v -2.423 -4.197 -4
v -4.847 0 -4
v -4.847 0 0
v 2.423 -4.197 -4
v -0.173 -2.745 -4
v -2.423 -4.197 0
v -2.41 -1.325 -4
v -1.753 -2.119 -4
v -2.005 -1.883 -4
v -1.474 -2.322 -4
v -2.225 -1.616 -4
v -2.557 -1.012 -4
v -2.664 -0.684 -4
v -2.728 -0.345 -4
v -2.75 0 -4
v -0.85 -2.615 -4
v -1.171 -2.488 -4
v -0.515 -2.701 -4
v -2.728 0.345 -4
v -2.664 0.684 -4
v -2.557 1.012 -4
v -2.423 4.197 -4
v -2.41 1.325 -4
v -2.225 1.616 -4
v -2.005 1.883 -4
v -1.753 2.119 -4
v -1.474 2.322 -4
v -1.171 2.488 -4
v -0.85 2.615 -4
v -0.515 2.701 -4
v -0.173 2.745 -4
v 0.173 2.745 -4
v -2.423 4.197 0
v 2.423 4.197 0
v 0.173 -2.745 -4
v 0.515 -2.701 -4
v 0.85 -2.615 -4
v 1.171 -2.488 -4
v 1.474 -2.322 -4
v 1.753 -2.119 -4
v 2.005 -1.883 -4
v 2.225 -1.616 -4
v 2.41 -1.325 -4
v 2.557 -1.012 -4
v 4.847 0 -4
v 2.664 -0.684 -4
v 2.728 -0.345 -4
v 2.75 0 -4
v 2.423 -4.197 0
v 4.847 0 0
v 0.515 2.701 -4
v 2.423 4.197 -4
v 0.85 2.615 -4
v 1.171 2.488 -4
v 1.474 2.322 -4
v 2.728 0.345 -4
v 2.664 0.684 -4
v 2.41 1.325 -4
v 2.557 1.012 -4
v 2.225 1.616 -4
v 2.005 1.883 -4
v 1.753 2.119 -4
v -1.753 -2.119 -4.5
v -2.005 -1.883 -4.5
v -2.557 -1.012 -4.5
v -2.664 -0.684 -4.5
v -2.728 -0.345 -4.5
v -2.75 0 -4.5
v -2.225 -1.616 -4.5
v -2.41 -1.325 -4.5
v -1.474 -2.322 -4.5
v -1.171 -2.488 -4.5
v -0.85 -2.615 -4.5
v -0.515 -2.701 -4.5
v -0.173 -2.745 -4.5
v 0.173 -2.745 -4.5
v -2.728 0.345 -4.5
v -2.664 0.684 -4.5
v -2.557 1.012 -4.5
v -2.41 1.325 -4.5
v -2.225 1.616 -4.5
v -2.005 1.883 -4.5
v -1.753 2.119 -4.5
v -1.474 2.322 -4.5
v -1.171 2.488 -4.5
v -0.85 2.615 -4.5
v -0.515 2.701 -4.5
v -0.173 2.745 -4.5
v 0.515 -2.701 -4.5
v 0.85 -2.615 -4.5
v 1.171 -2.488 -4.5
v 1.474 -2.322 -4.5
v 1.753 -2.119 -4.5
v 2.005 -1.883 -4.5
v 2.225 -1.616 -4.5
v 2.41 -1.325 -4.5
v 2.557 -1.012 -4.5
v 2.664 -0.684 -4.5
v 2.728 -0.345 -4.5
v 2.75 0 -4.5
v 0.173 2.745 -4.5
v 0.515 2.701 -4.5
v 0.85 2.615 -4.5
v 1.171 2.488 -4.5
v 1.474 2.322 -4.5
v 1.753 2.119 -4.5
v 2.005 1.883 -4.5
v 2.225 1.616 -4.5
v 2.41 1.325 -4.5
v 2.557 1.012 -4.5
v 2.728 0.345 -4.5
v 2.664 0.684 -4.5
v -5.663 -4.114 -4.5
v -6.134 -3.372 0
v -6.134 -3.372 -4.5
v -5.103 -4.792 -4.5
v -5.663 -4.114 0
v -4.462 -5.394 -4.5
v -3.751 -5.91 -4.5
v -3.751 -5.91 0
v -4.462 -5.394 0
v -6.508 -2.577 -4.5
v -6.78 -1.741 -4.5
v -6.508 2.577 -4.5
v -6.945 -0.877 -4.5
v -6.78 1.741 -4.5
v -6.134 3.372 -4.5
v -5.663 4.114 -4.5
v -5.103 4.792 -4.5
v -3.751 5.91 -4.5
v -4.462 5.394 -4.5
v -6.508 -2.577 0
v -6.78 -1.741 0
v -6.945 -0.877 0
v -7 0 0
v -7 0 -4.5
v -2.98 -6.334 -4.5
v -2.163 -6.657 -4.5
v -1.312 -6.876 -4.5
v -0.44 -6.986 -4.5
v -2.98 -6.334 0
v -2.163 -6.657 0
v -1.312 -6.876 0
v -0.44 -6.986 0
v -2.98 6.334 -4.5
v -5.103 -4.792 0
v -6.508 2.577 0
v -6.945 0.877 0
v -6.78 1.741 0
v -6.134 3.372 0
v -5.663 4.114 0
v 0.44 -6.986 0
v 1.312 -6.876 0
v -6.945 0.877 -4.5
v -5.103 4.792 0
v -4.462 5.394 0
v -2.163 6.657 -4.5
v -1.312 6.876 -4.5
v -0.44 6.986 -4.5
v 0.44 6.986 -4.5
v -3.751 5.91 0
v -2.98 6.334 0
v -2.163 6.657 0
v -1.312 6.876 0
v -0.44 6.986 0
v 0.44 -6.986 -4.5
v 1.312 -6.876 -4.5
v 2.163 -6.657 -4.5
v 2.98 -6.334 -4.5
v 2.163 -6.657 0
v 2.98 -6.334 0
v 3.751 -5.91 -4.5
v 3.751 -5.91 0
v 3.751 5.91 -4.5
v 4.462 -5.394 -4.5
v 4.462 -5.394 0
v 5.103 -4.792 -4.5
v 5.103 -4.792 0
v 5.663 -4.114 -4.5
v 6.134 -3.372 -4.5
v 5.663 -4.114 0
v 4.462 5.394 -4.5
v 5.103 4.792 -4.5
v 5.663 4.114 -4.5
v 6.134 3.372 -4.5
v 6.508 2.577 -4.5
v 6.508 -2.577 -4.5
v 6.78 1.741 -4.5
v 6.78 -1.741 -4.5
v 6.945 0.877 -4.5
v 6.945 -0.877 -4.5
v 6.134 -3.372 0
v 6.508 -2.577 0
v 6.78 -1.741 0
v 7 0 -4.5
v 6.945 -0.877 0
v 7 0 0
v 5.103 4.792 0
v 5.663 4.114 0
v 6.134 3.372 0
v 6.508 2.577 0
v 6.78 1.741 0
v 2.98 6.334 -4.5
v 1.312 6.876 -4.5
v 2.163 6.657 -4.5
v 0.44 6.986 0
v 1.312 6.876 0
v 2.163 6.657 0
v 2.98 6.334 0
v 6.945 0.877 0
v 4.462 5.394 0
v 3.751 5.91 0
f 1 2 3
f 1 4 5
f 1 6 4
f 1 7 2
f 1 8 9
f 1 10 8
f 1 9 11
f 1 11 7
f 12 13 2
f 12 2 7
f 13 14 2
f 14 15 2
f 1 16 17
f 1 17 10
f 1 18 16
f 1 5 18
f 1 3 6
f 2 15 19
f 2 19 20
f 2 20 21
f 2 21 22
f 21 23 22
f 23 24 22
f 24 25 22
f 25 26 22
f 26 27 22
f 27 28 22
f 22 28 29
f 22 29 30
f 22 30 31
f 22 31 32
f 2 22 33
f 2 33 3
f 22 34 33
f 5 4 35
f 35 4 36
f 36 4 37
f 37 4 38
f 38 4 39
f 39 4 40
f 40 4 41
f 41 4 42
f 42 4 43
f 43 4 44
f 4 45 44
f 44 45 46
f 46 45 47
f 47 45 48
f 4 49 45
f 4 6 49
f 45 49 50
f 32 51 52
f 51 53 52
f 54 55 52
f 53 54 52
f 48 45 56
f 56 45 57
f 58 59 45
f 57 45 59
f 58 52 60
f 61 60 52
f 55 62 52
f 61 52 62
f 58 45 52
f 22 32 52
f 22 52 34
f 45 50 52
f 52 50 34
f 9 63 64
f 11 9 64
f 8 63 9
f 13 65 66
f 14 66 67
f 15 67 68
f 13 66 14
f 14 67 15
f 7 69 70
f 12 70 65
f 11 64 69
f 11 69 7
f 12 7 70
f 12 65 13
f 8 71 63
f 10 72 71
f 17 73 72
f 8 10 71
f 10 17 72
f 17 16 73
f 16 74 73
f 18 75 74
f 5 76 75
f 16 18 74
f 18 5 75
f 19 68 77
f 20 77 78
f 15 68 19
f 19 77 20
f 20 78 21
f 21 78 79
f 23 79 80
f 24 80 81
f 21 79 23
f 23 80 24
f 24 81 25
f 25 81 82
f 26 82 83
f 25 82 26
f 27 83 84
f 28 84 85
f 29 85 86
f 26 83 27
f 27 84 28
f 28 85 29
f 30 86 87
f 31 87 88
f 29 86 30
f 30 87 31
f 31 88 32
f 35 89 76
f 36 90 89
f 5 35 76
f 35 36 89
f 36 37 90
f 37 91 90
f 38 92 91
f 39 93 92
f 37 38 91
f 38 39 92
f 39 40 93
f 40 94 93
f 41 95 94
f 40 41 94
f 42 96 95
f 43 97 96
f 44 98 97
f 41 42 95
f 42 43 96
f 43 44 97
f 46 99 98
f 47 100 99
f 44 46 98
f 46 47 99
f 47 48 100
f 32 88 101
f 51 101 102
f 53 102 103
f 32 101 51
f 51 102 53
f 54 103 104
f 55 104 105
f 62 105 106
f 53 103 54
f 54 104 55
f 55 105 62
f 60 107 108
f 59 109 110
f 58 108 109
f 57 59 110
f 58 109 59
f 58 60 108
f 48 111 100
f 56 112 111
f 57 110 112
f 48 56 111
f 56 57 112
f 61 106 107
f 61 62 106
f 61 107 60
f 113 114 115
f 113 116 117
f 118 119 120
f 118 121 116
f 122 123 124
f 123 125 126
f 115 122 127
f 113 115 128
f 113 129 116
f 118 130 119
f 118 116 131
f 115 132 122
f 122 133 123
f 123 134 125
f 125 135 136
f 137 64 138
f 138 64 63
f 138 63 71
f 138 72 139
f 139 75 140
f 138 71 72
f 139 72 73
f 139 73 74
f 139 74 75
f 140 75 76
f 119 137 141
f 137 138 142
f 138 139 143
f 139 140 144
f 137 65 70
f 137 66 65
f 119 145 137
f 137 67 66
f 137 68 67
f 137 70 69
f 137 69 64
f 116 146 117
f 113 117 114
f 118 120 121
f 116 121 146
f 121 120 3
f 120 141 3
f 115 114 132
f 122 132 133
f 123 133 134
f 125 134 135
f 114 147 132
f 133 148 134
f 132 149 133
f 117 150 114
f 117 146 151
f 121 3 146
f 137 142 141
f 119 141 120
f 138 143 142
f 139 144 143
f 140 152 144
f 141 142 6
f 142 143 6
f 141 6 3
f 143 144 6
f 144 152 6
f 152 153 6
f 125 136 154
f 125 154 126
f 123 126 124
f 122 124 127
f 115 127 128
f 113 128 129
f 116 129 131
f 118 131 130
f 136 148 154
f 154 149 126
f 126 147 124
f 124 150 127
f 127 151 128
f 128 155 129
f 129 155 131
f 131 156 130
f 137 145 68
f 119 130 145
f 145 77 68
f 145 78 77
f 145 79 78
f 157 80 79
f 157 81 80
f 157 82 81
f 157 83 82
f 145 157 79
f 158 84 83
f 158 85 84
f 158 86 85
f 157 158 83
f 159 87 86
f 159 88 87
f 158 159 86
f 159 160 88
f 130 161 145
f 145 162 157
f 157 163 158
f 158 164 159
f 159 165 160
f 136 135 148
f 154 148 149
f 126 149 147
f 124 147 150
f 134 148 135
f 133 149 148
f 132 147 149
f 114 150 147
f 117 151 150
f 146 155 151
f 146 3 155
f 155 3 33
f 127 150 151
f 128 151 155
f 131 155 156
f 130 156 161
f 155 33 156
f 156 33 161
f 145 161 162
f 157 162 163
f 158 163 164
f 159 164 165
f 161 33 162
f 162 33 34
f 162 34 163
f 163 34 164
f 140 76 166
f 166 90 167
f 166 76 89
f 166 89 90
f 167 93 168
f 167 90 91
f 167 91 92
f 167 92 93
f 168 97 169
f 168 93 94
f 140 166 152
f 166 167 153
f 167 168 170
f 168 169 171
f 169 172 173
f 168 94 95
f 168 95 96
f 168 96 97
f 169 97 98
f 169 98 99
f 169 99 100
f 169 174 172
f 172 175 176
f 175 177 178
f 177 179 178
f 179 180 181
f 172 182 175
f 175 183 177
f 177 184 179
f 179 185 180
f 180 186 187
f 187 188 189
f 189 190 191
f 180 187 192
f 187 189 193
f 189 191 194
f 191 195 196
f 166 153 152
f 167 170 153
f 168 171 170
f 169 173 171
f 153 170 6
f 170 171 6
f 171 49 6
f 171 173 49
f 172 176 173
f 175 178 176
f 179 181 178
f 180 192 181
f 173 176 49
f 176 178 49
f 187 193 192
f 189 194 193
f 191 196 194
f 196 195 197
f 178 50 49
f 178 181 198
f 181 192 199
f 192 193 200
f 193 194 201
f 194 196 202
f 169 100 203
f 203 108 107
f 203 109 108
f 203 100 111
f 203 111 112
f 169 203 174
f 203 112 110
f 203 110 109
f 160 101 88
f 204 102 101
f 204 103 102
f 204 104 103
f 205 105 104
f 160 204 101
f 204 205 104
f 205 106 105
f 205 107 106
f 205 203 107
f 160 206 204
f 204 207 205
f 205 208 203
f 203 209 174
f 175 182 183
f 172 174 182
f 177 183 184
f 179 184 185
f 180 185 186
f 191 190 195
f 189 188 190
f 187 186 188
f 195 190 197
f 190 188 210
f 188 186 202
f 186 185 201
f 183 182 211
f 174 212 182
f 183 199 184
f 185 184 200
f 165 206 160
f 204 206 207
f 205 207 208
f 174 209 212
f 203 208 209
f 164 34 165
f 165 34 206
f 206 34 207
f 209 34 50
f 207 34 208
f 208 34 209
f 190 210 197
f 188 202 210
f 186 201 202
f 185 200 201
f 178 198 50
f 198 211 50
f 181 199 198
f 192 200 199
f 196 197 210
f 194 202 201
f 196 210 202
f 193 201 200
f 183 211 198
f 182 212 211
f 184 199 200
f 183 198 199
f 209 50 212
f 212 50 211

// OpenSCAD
$fn = 50;

difference() {
	union() {
		translate(v = [0, 0, -4.5]) {
			cylinder(h = 4.5, r = 7.0);
		}
	}
	union() {
		translate(v = [0, 0, 0]) {
			rotate(a = [0, 0, 0]) {
				difference() {
					union() {
						translate(v = [0, 0, -4]) {
							linear_extrude(height = 4) {
								polygon(points = [[4.8468, 0.0], [2.4234000000000004, 4.197451927062417], [-2.423399999999999, 4.197451927062417], [-4.8468, 5.935618106107392e-16], [-2.423400000000002, -4.197451927062416], [2.423399999999997, -4.197451927062419]]);
							}
						}
					}
					union();
				}
			}
		}
		#translate(v = [0, 0, -100.0]) {
			cylinder(h = 200, r = 2.75);
		}
	}
}
